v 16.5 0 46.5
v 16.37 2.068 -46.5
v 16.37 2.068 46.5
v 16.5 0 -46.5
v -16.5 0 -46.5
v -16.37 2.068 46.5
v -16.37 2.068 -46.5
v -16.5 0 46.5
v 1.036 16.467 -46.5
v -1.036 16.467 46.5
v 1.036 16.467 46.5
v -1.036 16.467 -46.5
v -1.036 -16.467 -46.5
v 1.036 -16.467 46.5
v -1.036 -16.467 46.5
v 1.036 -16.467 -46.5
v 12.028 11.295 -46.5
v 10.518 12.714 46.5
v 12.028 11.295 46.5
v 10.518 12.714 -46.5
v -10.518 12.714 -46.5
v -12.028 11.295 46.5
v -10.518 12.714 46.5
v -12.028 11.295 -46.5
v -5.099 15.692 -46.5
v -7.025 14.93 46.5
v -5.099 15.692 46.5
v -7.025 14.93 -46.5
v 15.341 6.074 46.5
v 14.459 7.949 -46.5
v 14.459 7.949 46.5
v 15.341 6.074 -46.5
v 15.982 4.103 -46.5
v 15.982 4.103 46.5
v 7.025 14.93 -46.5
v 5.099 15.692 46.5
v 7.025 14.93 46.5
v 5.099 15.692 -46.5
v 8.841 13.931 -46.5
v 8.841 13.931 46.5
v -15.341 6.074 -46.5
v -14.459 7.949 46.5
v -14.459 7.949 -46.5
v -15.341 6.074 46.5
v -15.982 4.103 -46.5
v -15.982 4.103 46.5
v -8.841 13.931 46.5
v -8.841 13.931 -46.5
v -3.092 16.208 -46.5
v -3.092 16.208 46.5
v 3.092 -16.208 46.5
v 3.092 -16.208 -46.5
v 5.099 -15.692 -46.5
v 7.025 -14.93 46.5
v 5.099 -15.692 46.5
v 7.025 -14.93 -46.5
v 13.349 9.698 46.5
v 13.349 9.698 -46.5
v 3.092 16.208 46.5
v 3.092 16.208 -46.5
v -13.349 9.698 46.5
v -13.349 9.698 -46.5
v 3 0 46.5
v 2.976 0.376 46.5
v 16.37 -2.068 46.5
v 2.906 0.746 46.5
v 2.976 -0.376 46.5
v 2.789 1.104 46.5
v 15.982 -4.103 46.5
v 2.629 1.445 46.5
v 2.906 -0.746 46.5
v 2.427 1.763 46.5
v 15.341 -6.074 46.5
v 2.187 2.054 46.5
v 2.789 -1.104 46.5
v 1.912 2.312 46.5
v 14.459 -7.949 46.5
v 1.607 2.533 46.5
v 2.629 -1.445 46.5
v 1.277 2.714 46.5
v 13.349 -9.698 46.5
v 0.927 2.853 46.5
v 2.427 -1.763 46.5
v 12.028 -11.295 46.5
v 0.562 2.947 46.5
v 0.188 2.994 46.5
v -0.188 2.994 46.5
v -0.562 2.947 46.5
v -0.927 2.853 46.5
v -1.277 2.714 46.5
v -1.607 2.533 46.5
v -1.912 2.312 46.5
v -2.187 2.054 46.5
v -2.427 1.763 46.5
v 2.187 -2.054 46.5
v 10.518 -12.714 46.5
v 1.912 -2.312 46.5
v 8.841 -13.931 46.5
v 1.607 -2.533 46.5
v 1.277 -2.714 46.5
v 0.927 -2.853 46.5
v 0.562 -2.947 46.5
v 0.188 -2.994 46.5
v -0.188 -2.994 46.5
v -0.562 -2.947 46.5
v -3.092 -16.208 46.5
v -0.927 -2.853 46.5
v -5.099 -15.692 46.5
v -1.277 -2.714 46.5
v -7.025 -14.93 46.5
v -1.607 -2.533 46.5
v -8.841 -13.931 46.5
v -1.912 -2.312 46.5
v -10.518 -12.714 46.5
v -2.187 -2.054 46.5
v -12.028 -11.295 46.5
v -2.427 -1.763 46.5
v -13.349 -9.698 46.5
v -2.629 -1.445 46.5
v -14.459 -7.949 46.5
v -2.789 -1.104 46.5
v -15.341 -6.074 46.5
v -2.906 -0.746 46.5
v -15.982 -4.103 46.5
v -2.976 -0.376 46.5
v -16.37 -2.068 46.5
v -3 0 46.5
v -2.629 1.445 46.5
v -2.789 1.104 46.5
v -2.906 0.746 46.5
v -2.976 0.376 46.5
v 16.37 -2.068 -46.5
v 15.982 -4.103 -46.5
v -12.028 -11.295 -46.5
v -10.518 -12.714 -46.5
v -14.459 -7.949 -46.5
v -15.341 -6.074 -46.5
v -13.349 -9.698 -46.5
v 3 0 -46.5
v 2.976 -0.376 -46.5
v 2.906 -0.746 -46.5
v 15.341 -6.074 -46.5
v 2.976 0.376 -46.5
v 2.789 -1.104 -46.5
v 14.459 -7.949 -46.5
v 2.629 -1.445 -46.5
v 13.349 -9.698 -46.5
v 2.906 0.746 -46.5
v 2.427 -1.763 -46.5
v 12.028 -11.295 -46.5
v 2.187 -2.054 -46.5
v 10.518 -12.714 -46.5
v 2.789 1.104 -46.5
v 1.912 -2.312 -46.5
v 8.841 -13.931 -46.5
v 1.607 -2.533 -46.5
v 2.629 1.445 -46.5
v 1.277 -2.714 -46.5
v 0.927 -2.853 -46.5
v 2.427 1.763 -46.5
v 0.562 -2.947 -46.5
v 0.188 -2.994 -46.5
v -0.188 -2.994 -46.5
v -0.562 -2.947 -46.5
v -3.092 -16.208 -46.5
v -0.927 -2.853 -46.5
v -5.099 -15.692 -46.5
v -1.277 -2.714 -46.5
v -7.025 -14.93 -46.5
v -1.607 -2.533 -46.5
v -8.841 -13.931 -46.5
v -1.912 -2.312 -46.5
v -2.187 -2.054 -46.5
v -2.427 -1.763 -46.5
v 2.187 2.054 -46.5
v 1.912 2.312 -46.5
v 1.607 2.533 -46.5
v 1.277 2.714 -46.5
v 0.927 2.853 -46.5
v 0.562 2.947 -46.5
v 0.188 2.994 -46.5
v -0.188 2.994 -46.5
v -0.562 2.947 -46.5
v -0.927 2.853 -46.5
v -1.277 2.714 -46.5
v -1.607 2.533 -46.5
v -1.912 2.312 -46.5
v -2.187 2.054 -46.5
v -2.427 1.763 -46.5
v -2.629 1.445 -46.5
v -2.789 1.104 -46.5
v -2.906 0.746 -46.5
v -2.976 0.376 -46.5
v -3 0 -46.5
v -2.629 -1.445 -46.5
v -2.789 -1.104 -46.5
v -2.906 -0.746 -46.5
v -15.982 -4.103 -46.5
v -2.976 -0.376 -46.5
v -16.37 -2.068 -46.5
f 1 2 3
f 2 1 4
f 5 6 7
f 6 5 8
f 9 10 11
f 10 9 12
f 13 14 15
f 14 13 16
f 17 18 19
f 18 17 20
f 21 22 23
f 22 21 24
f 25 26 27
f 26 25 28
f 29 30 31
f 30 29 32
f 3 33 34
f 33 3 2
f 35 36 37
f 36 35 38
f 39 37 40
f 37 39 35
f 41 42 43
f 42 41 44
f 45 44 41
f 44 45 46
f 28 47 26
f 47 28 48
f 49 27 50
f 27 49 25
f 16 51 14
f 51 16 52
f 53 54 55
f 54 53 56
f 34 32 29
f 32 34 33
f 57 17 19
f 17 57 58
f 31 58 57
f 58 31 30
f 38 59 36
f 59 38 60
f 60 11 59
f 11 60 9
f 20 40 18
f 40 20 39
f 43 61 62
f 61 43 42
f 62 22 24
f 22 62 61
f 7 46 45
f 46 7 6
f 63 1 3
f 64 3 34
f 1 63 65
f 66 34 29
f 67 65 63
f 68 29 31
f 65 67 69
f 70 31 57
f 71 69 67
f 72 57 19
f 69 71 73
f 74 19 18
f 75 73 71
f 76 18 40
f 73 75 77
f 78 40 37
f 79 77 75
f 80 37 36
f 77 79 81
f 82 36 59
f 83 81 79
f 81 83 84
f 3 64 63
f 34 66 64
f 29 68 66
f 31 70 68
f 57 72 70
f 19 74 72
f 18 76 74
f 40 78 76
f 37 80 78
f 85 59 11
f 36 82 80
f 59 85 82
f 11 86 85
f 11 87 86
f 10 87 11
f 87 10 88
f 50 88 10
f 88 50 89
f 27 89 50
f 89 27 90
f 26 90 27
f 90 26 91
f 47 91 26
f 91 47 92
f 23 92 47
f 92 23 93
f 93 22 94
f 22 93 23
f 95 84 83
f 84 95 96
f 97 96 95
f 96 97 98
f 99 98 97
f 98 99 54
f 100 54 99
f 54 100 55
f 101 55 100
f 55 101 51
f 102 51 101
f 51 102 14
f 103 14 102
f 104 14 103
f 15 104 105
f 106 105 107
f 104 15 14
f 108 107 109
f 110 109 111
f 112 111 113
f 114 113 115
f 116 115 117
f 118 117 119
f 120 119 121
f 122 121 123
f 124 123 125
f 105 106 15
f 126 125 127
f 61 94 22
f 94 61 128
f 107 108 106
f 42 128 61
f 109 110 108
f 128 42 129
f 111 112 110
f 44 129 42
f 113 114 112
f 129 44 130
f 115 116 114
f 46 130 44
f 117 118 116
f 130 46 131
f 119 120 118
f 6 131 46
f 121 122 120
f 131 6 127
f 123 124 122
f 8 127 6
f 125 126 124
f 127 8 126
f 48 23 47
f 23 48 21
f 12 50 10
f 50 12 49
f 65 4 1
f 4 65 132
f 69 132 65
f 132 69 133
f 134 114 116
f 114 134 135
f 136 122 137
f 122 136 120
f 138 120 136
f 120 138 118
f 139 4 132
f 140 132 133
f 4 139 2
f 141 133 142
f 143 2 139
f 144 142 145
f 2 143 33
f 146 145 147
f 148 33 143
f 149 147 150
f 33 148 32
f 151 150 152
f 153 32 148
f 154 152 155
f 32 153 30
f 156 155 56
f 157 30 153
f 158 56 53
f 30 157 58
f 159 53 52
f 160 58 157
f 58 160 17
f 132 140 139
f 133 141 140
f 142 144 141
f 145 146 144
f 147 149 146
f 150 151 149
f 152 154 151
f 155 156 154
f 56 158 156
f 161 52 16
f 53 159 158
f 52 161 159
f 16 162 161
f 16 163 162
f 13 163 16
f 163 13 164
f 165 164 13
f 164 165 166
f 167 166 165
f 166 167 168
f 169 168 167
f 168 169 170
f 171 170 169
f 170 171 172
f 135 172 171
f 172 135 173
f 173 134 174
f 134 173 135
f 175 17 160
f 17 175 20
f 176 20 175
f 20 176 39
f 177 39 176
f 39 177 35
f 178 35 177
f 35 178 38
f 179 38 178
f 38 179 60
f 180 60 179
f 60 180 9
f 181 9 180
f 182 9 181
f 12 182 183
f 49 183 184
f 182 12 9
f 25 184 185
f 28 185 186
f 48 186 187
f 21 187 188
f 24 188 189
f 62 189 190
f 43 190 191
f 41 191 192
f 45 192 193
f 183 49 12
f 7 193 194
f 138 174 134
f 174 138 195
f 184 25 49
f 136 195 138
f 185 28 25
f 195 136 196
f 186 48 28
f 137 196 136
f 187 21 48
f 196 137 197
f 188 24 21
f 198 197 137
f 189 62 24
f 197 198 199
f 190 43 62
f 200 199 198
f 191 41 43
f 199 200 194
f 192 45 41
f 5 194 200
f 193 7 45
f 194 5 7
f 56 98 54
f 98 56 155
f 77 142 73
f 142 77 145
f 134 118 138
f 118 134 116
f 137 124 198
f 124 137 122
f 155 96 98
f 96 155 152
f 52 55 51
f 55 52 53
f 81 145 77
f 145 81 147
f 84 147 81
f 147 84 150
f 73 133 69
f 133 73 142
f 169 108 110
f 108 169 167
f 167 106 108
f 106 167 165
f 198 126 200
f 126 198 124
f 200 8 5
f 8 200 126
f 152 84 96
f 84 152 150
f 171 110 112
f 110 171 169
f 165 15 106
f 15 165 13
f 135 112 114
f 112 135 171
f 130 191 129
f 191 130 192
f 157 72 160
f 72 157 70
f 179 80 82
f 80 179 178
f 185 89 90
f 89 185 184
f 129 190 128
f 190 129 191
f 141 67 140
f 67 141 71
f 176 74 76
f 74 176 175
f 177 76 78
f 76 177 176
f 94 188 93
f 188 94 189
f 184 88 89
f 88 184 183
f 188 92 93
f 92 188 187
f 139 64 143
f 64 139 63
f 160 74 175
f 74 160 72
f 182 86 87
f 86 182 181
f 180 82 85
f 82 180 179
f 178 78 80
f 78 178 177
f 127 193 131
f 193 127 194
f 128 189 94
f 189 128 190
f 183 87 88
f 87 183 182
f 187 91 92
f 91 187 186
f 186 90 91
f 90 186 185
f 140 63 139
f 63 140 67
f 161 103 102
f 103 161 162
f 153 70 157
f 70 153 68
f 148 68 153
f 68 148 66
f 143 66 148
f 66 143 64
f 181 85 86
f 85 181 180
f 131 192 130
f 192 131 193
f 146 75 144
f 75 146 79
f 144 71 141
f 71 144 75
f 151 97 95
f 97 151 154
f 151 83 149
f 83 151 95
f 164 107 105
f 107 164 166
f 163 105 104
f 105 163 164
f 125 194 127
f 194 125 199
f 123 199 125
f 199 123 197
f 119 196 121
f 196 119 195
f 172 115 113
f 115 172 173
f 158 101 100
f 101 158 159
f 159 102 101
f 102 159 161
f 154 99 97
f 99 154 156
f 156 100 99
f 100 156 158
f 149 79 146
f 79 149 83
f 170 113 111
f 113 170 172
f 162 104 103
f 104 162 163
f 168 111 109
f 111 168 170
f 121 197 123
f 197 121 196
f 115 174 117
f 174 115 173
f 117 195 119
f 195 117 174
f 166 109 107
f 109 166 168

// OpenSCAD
$fn = 50;


difference() {
	union() {
		translate(v = [0, 0, -46.5000000000]) {
			cylinder(h = 93, r = 16.5000000000);
		}
	}
	union() {
		translate(v = [0, 0, -100.0000000000]) {
			cylinder(h = 200, r = 3);
		}
	}
}
